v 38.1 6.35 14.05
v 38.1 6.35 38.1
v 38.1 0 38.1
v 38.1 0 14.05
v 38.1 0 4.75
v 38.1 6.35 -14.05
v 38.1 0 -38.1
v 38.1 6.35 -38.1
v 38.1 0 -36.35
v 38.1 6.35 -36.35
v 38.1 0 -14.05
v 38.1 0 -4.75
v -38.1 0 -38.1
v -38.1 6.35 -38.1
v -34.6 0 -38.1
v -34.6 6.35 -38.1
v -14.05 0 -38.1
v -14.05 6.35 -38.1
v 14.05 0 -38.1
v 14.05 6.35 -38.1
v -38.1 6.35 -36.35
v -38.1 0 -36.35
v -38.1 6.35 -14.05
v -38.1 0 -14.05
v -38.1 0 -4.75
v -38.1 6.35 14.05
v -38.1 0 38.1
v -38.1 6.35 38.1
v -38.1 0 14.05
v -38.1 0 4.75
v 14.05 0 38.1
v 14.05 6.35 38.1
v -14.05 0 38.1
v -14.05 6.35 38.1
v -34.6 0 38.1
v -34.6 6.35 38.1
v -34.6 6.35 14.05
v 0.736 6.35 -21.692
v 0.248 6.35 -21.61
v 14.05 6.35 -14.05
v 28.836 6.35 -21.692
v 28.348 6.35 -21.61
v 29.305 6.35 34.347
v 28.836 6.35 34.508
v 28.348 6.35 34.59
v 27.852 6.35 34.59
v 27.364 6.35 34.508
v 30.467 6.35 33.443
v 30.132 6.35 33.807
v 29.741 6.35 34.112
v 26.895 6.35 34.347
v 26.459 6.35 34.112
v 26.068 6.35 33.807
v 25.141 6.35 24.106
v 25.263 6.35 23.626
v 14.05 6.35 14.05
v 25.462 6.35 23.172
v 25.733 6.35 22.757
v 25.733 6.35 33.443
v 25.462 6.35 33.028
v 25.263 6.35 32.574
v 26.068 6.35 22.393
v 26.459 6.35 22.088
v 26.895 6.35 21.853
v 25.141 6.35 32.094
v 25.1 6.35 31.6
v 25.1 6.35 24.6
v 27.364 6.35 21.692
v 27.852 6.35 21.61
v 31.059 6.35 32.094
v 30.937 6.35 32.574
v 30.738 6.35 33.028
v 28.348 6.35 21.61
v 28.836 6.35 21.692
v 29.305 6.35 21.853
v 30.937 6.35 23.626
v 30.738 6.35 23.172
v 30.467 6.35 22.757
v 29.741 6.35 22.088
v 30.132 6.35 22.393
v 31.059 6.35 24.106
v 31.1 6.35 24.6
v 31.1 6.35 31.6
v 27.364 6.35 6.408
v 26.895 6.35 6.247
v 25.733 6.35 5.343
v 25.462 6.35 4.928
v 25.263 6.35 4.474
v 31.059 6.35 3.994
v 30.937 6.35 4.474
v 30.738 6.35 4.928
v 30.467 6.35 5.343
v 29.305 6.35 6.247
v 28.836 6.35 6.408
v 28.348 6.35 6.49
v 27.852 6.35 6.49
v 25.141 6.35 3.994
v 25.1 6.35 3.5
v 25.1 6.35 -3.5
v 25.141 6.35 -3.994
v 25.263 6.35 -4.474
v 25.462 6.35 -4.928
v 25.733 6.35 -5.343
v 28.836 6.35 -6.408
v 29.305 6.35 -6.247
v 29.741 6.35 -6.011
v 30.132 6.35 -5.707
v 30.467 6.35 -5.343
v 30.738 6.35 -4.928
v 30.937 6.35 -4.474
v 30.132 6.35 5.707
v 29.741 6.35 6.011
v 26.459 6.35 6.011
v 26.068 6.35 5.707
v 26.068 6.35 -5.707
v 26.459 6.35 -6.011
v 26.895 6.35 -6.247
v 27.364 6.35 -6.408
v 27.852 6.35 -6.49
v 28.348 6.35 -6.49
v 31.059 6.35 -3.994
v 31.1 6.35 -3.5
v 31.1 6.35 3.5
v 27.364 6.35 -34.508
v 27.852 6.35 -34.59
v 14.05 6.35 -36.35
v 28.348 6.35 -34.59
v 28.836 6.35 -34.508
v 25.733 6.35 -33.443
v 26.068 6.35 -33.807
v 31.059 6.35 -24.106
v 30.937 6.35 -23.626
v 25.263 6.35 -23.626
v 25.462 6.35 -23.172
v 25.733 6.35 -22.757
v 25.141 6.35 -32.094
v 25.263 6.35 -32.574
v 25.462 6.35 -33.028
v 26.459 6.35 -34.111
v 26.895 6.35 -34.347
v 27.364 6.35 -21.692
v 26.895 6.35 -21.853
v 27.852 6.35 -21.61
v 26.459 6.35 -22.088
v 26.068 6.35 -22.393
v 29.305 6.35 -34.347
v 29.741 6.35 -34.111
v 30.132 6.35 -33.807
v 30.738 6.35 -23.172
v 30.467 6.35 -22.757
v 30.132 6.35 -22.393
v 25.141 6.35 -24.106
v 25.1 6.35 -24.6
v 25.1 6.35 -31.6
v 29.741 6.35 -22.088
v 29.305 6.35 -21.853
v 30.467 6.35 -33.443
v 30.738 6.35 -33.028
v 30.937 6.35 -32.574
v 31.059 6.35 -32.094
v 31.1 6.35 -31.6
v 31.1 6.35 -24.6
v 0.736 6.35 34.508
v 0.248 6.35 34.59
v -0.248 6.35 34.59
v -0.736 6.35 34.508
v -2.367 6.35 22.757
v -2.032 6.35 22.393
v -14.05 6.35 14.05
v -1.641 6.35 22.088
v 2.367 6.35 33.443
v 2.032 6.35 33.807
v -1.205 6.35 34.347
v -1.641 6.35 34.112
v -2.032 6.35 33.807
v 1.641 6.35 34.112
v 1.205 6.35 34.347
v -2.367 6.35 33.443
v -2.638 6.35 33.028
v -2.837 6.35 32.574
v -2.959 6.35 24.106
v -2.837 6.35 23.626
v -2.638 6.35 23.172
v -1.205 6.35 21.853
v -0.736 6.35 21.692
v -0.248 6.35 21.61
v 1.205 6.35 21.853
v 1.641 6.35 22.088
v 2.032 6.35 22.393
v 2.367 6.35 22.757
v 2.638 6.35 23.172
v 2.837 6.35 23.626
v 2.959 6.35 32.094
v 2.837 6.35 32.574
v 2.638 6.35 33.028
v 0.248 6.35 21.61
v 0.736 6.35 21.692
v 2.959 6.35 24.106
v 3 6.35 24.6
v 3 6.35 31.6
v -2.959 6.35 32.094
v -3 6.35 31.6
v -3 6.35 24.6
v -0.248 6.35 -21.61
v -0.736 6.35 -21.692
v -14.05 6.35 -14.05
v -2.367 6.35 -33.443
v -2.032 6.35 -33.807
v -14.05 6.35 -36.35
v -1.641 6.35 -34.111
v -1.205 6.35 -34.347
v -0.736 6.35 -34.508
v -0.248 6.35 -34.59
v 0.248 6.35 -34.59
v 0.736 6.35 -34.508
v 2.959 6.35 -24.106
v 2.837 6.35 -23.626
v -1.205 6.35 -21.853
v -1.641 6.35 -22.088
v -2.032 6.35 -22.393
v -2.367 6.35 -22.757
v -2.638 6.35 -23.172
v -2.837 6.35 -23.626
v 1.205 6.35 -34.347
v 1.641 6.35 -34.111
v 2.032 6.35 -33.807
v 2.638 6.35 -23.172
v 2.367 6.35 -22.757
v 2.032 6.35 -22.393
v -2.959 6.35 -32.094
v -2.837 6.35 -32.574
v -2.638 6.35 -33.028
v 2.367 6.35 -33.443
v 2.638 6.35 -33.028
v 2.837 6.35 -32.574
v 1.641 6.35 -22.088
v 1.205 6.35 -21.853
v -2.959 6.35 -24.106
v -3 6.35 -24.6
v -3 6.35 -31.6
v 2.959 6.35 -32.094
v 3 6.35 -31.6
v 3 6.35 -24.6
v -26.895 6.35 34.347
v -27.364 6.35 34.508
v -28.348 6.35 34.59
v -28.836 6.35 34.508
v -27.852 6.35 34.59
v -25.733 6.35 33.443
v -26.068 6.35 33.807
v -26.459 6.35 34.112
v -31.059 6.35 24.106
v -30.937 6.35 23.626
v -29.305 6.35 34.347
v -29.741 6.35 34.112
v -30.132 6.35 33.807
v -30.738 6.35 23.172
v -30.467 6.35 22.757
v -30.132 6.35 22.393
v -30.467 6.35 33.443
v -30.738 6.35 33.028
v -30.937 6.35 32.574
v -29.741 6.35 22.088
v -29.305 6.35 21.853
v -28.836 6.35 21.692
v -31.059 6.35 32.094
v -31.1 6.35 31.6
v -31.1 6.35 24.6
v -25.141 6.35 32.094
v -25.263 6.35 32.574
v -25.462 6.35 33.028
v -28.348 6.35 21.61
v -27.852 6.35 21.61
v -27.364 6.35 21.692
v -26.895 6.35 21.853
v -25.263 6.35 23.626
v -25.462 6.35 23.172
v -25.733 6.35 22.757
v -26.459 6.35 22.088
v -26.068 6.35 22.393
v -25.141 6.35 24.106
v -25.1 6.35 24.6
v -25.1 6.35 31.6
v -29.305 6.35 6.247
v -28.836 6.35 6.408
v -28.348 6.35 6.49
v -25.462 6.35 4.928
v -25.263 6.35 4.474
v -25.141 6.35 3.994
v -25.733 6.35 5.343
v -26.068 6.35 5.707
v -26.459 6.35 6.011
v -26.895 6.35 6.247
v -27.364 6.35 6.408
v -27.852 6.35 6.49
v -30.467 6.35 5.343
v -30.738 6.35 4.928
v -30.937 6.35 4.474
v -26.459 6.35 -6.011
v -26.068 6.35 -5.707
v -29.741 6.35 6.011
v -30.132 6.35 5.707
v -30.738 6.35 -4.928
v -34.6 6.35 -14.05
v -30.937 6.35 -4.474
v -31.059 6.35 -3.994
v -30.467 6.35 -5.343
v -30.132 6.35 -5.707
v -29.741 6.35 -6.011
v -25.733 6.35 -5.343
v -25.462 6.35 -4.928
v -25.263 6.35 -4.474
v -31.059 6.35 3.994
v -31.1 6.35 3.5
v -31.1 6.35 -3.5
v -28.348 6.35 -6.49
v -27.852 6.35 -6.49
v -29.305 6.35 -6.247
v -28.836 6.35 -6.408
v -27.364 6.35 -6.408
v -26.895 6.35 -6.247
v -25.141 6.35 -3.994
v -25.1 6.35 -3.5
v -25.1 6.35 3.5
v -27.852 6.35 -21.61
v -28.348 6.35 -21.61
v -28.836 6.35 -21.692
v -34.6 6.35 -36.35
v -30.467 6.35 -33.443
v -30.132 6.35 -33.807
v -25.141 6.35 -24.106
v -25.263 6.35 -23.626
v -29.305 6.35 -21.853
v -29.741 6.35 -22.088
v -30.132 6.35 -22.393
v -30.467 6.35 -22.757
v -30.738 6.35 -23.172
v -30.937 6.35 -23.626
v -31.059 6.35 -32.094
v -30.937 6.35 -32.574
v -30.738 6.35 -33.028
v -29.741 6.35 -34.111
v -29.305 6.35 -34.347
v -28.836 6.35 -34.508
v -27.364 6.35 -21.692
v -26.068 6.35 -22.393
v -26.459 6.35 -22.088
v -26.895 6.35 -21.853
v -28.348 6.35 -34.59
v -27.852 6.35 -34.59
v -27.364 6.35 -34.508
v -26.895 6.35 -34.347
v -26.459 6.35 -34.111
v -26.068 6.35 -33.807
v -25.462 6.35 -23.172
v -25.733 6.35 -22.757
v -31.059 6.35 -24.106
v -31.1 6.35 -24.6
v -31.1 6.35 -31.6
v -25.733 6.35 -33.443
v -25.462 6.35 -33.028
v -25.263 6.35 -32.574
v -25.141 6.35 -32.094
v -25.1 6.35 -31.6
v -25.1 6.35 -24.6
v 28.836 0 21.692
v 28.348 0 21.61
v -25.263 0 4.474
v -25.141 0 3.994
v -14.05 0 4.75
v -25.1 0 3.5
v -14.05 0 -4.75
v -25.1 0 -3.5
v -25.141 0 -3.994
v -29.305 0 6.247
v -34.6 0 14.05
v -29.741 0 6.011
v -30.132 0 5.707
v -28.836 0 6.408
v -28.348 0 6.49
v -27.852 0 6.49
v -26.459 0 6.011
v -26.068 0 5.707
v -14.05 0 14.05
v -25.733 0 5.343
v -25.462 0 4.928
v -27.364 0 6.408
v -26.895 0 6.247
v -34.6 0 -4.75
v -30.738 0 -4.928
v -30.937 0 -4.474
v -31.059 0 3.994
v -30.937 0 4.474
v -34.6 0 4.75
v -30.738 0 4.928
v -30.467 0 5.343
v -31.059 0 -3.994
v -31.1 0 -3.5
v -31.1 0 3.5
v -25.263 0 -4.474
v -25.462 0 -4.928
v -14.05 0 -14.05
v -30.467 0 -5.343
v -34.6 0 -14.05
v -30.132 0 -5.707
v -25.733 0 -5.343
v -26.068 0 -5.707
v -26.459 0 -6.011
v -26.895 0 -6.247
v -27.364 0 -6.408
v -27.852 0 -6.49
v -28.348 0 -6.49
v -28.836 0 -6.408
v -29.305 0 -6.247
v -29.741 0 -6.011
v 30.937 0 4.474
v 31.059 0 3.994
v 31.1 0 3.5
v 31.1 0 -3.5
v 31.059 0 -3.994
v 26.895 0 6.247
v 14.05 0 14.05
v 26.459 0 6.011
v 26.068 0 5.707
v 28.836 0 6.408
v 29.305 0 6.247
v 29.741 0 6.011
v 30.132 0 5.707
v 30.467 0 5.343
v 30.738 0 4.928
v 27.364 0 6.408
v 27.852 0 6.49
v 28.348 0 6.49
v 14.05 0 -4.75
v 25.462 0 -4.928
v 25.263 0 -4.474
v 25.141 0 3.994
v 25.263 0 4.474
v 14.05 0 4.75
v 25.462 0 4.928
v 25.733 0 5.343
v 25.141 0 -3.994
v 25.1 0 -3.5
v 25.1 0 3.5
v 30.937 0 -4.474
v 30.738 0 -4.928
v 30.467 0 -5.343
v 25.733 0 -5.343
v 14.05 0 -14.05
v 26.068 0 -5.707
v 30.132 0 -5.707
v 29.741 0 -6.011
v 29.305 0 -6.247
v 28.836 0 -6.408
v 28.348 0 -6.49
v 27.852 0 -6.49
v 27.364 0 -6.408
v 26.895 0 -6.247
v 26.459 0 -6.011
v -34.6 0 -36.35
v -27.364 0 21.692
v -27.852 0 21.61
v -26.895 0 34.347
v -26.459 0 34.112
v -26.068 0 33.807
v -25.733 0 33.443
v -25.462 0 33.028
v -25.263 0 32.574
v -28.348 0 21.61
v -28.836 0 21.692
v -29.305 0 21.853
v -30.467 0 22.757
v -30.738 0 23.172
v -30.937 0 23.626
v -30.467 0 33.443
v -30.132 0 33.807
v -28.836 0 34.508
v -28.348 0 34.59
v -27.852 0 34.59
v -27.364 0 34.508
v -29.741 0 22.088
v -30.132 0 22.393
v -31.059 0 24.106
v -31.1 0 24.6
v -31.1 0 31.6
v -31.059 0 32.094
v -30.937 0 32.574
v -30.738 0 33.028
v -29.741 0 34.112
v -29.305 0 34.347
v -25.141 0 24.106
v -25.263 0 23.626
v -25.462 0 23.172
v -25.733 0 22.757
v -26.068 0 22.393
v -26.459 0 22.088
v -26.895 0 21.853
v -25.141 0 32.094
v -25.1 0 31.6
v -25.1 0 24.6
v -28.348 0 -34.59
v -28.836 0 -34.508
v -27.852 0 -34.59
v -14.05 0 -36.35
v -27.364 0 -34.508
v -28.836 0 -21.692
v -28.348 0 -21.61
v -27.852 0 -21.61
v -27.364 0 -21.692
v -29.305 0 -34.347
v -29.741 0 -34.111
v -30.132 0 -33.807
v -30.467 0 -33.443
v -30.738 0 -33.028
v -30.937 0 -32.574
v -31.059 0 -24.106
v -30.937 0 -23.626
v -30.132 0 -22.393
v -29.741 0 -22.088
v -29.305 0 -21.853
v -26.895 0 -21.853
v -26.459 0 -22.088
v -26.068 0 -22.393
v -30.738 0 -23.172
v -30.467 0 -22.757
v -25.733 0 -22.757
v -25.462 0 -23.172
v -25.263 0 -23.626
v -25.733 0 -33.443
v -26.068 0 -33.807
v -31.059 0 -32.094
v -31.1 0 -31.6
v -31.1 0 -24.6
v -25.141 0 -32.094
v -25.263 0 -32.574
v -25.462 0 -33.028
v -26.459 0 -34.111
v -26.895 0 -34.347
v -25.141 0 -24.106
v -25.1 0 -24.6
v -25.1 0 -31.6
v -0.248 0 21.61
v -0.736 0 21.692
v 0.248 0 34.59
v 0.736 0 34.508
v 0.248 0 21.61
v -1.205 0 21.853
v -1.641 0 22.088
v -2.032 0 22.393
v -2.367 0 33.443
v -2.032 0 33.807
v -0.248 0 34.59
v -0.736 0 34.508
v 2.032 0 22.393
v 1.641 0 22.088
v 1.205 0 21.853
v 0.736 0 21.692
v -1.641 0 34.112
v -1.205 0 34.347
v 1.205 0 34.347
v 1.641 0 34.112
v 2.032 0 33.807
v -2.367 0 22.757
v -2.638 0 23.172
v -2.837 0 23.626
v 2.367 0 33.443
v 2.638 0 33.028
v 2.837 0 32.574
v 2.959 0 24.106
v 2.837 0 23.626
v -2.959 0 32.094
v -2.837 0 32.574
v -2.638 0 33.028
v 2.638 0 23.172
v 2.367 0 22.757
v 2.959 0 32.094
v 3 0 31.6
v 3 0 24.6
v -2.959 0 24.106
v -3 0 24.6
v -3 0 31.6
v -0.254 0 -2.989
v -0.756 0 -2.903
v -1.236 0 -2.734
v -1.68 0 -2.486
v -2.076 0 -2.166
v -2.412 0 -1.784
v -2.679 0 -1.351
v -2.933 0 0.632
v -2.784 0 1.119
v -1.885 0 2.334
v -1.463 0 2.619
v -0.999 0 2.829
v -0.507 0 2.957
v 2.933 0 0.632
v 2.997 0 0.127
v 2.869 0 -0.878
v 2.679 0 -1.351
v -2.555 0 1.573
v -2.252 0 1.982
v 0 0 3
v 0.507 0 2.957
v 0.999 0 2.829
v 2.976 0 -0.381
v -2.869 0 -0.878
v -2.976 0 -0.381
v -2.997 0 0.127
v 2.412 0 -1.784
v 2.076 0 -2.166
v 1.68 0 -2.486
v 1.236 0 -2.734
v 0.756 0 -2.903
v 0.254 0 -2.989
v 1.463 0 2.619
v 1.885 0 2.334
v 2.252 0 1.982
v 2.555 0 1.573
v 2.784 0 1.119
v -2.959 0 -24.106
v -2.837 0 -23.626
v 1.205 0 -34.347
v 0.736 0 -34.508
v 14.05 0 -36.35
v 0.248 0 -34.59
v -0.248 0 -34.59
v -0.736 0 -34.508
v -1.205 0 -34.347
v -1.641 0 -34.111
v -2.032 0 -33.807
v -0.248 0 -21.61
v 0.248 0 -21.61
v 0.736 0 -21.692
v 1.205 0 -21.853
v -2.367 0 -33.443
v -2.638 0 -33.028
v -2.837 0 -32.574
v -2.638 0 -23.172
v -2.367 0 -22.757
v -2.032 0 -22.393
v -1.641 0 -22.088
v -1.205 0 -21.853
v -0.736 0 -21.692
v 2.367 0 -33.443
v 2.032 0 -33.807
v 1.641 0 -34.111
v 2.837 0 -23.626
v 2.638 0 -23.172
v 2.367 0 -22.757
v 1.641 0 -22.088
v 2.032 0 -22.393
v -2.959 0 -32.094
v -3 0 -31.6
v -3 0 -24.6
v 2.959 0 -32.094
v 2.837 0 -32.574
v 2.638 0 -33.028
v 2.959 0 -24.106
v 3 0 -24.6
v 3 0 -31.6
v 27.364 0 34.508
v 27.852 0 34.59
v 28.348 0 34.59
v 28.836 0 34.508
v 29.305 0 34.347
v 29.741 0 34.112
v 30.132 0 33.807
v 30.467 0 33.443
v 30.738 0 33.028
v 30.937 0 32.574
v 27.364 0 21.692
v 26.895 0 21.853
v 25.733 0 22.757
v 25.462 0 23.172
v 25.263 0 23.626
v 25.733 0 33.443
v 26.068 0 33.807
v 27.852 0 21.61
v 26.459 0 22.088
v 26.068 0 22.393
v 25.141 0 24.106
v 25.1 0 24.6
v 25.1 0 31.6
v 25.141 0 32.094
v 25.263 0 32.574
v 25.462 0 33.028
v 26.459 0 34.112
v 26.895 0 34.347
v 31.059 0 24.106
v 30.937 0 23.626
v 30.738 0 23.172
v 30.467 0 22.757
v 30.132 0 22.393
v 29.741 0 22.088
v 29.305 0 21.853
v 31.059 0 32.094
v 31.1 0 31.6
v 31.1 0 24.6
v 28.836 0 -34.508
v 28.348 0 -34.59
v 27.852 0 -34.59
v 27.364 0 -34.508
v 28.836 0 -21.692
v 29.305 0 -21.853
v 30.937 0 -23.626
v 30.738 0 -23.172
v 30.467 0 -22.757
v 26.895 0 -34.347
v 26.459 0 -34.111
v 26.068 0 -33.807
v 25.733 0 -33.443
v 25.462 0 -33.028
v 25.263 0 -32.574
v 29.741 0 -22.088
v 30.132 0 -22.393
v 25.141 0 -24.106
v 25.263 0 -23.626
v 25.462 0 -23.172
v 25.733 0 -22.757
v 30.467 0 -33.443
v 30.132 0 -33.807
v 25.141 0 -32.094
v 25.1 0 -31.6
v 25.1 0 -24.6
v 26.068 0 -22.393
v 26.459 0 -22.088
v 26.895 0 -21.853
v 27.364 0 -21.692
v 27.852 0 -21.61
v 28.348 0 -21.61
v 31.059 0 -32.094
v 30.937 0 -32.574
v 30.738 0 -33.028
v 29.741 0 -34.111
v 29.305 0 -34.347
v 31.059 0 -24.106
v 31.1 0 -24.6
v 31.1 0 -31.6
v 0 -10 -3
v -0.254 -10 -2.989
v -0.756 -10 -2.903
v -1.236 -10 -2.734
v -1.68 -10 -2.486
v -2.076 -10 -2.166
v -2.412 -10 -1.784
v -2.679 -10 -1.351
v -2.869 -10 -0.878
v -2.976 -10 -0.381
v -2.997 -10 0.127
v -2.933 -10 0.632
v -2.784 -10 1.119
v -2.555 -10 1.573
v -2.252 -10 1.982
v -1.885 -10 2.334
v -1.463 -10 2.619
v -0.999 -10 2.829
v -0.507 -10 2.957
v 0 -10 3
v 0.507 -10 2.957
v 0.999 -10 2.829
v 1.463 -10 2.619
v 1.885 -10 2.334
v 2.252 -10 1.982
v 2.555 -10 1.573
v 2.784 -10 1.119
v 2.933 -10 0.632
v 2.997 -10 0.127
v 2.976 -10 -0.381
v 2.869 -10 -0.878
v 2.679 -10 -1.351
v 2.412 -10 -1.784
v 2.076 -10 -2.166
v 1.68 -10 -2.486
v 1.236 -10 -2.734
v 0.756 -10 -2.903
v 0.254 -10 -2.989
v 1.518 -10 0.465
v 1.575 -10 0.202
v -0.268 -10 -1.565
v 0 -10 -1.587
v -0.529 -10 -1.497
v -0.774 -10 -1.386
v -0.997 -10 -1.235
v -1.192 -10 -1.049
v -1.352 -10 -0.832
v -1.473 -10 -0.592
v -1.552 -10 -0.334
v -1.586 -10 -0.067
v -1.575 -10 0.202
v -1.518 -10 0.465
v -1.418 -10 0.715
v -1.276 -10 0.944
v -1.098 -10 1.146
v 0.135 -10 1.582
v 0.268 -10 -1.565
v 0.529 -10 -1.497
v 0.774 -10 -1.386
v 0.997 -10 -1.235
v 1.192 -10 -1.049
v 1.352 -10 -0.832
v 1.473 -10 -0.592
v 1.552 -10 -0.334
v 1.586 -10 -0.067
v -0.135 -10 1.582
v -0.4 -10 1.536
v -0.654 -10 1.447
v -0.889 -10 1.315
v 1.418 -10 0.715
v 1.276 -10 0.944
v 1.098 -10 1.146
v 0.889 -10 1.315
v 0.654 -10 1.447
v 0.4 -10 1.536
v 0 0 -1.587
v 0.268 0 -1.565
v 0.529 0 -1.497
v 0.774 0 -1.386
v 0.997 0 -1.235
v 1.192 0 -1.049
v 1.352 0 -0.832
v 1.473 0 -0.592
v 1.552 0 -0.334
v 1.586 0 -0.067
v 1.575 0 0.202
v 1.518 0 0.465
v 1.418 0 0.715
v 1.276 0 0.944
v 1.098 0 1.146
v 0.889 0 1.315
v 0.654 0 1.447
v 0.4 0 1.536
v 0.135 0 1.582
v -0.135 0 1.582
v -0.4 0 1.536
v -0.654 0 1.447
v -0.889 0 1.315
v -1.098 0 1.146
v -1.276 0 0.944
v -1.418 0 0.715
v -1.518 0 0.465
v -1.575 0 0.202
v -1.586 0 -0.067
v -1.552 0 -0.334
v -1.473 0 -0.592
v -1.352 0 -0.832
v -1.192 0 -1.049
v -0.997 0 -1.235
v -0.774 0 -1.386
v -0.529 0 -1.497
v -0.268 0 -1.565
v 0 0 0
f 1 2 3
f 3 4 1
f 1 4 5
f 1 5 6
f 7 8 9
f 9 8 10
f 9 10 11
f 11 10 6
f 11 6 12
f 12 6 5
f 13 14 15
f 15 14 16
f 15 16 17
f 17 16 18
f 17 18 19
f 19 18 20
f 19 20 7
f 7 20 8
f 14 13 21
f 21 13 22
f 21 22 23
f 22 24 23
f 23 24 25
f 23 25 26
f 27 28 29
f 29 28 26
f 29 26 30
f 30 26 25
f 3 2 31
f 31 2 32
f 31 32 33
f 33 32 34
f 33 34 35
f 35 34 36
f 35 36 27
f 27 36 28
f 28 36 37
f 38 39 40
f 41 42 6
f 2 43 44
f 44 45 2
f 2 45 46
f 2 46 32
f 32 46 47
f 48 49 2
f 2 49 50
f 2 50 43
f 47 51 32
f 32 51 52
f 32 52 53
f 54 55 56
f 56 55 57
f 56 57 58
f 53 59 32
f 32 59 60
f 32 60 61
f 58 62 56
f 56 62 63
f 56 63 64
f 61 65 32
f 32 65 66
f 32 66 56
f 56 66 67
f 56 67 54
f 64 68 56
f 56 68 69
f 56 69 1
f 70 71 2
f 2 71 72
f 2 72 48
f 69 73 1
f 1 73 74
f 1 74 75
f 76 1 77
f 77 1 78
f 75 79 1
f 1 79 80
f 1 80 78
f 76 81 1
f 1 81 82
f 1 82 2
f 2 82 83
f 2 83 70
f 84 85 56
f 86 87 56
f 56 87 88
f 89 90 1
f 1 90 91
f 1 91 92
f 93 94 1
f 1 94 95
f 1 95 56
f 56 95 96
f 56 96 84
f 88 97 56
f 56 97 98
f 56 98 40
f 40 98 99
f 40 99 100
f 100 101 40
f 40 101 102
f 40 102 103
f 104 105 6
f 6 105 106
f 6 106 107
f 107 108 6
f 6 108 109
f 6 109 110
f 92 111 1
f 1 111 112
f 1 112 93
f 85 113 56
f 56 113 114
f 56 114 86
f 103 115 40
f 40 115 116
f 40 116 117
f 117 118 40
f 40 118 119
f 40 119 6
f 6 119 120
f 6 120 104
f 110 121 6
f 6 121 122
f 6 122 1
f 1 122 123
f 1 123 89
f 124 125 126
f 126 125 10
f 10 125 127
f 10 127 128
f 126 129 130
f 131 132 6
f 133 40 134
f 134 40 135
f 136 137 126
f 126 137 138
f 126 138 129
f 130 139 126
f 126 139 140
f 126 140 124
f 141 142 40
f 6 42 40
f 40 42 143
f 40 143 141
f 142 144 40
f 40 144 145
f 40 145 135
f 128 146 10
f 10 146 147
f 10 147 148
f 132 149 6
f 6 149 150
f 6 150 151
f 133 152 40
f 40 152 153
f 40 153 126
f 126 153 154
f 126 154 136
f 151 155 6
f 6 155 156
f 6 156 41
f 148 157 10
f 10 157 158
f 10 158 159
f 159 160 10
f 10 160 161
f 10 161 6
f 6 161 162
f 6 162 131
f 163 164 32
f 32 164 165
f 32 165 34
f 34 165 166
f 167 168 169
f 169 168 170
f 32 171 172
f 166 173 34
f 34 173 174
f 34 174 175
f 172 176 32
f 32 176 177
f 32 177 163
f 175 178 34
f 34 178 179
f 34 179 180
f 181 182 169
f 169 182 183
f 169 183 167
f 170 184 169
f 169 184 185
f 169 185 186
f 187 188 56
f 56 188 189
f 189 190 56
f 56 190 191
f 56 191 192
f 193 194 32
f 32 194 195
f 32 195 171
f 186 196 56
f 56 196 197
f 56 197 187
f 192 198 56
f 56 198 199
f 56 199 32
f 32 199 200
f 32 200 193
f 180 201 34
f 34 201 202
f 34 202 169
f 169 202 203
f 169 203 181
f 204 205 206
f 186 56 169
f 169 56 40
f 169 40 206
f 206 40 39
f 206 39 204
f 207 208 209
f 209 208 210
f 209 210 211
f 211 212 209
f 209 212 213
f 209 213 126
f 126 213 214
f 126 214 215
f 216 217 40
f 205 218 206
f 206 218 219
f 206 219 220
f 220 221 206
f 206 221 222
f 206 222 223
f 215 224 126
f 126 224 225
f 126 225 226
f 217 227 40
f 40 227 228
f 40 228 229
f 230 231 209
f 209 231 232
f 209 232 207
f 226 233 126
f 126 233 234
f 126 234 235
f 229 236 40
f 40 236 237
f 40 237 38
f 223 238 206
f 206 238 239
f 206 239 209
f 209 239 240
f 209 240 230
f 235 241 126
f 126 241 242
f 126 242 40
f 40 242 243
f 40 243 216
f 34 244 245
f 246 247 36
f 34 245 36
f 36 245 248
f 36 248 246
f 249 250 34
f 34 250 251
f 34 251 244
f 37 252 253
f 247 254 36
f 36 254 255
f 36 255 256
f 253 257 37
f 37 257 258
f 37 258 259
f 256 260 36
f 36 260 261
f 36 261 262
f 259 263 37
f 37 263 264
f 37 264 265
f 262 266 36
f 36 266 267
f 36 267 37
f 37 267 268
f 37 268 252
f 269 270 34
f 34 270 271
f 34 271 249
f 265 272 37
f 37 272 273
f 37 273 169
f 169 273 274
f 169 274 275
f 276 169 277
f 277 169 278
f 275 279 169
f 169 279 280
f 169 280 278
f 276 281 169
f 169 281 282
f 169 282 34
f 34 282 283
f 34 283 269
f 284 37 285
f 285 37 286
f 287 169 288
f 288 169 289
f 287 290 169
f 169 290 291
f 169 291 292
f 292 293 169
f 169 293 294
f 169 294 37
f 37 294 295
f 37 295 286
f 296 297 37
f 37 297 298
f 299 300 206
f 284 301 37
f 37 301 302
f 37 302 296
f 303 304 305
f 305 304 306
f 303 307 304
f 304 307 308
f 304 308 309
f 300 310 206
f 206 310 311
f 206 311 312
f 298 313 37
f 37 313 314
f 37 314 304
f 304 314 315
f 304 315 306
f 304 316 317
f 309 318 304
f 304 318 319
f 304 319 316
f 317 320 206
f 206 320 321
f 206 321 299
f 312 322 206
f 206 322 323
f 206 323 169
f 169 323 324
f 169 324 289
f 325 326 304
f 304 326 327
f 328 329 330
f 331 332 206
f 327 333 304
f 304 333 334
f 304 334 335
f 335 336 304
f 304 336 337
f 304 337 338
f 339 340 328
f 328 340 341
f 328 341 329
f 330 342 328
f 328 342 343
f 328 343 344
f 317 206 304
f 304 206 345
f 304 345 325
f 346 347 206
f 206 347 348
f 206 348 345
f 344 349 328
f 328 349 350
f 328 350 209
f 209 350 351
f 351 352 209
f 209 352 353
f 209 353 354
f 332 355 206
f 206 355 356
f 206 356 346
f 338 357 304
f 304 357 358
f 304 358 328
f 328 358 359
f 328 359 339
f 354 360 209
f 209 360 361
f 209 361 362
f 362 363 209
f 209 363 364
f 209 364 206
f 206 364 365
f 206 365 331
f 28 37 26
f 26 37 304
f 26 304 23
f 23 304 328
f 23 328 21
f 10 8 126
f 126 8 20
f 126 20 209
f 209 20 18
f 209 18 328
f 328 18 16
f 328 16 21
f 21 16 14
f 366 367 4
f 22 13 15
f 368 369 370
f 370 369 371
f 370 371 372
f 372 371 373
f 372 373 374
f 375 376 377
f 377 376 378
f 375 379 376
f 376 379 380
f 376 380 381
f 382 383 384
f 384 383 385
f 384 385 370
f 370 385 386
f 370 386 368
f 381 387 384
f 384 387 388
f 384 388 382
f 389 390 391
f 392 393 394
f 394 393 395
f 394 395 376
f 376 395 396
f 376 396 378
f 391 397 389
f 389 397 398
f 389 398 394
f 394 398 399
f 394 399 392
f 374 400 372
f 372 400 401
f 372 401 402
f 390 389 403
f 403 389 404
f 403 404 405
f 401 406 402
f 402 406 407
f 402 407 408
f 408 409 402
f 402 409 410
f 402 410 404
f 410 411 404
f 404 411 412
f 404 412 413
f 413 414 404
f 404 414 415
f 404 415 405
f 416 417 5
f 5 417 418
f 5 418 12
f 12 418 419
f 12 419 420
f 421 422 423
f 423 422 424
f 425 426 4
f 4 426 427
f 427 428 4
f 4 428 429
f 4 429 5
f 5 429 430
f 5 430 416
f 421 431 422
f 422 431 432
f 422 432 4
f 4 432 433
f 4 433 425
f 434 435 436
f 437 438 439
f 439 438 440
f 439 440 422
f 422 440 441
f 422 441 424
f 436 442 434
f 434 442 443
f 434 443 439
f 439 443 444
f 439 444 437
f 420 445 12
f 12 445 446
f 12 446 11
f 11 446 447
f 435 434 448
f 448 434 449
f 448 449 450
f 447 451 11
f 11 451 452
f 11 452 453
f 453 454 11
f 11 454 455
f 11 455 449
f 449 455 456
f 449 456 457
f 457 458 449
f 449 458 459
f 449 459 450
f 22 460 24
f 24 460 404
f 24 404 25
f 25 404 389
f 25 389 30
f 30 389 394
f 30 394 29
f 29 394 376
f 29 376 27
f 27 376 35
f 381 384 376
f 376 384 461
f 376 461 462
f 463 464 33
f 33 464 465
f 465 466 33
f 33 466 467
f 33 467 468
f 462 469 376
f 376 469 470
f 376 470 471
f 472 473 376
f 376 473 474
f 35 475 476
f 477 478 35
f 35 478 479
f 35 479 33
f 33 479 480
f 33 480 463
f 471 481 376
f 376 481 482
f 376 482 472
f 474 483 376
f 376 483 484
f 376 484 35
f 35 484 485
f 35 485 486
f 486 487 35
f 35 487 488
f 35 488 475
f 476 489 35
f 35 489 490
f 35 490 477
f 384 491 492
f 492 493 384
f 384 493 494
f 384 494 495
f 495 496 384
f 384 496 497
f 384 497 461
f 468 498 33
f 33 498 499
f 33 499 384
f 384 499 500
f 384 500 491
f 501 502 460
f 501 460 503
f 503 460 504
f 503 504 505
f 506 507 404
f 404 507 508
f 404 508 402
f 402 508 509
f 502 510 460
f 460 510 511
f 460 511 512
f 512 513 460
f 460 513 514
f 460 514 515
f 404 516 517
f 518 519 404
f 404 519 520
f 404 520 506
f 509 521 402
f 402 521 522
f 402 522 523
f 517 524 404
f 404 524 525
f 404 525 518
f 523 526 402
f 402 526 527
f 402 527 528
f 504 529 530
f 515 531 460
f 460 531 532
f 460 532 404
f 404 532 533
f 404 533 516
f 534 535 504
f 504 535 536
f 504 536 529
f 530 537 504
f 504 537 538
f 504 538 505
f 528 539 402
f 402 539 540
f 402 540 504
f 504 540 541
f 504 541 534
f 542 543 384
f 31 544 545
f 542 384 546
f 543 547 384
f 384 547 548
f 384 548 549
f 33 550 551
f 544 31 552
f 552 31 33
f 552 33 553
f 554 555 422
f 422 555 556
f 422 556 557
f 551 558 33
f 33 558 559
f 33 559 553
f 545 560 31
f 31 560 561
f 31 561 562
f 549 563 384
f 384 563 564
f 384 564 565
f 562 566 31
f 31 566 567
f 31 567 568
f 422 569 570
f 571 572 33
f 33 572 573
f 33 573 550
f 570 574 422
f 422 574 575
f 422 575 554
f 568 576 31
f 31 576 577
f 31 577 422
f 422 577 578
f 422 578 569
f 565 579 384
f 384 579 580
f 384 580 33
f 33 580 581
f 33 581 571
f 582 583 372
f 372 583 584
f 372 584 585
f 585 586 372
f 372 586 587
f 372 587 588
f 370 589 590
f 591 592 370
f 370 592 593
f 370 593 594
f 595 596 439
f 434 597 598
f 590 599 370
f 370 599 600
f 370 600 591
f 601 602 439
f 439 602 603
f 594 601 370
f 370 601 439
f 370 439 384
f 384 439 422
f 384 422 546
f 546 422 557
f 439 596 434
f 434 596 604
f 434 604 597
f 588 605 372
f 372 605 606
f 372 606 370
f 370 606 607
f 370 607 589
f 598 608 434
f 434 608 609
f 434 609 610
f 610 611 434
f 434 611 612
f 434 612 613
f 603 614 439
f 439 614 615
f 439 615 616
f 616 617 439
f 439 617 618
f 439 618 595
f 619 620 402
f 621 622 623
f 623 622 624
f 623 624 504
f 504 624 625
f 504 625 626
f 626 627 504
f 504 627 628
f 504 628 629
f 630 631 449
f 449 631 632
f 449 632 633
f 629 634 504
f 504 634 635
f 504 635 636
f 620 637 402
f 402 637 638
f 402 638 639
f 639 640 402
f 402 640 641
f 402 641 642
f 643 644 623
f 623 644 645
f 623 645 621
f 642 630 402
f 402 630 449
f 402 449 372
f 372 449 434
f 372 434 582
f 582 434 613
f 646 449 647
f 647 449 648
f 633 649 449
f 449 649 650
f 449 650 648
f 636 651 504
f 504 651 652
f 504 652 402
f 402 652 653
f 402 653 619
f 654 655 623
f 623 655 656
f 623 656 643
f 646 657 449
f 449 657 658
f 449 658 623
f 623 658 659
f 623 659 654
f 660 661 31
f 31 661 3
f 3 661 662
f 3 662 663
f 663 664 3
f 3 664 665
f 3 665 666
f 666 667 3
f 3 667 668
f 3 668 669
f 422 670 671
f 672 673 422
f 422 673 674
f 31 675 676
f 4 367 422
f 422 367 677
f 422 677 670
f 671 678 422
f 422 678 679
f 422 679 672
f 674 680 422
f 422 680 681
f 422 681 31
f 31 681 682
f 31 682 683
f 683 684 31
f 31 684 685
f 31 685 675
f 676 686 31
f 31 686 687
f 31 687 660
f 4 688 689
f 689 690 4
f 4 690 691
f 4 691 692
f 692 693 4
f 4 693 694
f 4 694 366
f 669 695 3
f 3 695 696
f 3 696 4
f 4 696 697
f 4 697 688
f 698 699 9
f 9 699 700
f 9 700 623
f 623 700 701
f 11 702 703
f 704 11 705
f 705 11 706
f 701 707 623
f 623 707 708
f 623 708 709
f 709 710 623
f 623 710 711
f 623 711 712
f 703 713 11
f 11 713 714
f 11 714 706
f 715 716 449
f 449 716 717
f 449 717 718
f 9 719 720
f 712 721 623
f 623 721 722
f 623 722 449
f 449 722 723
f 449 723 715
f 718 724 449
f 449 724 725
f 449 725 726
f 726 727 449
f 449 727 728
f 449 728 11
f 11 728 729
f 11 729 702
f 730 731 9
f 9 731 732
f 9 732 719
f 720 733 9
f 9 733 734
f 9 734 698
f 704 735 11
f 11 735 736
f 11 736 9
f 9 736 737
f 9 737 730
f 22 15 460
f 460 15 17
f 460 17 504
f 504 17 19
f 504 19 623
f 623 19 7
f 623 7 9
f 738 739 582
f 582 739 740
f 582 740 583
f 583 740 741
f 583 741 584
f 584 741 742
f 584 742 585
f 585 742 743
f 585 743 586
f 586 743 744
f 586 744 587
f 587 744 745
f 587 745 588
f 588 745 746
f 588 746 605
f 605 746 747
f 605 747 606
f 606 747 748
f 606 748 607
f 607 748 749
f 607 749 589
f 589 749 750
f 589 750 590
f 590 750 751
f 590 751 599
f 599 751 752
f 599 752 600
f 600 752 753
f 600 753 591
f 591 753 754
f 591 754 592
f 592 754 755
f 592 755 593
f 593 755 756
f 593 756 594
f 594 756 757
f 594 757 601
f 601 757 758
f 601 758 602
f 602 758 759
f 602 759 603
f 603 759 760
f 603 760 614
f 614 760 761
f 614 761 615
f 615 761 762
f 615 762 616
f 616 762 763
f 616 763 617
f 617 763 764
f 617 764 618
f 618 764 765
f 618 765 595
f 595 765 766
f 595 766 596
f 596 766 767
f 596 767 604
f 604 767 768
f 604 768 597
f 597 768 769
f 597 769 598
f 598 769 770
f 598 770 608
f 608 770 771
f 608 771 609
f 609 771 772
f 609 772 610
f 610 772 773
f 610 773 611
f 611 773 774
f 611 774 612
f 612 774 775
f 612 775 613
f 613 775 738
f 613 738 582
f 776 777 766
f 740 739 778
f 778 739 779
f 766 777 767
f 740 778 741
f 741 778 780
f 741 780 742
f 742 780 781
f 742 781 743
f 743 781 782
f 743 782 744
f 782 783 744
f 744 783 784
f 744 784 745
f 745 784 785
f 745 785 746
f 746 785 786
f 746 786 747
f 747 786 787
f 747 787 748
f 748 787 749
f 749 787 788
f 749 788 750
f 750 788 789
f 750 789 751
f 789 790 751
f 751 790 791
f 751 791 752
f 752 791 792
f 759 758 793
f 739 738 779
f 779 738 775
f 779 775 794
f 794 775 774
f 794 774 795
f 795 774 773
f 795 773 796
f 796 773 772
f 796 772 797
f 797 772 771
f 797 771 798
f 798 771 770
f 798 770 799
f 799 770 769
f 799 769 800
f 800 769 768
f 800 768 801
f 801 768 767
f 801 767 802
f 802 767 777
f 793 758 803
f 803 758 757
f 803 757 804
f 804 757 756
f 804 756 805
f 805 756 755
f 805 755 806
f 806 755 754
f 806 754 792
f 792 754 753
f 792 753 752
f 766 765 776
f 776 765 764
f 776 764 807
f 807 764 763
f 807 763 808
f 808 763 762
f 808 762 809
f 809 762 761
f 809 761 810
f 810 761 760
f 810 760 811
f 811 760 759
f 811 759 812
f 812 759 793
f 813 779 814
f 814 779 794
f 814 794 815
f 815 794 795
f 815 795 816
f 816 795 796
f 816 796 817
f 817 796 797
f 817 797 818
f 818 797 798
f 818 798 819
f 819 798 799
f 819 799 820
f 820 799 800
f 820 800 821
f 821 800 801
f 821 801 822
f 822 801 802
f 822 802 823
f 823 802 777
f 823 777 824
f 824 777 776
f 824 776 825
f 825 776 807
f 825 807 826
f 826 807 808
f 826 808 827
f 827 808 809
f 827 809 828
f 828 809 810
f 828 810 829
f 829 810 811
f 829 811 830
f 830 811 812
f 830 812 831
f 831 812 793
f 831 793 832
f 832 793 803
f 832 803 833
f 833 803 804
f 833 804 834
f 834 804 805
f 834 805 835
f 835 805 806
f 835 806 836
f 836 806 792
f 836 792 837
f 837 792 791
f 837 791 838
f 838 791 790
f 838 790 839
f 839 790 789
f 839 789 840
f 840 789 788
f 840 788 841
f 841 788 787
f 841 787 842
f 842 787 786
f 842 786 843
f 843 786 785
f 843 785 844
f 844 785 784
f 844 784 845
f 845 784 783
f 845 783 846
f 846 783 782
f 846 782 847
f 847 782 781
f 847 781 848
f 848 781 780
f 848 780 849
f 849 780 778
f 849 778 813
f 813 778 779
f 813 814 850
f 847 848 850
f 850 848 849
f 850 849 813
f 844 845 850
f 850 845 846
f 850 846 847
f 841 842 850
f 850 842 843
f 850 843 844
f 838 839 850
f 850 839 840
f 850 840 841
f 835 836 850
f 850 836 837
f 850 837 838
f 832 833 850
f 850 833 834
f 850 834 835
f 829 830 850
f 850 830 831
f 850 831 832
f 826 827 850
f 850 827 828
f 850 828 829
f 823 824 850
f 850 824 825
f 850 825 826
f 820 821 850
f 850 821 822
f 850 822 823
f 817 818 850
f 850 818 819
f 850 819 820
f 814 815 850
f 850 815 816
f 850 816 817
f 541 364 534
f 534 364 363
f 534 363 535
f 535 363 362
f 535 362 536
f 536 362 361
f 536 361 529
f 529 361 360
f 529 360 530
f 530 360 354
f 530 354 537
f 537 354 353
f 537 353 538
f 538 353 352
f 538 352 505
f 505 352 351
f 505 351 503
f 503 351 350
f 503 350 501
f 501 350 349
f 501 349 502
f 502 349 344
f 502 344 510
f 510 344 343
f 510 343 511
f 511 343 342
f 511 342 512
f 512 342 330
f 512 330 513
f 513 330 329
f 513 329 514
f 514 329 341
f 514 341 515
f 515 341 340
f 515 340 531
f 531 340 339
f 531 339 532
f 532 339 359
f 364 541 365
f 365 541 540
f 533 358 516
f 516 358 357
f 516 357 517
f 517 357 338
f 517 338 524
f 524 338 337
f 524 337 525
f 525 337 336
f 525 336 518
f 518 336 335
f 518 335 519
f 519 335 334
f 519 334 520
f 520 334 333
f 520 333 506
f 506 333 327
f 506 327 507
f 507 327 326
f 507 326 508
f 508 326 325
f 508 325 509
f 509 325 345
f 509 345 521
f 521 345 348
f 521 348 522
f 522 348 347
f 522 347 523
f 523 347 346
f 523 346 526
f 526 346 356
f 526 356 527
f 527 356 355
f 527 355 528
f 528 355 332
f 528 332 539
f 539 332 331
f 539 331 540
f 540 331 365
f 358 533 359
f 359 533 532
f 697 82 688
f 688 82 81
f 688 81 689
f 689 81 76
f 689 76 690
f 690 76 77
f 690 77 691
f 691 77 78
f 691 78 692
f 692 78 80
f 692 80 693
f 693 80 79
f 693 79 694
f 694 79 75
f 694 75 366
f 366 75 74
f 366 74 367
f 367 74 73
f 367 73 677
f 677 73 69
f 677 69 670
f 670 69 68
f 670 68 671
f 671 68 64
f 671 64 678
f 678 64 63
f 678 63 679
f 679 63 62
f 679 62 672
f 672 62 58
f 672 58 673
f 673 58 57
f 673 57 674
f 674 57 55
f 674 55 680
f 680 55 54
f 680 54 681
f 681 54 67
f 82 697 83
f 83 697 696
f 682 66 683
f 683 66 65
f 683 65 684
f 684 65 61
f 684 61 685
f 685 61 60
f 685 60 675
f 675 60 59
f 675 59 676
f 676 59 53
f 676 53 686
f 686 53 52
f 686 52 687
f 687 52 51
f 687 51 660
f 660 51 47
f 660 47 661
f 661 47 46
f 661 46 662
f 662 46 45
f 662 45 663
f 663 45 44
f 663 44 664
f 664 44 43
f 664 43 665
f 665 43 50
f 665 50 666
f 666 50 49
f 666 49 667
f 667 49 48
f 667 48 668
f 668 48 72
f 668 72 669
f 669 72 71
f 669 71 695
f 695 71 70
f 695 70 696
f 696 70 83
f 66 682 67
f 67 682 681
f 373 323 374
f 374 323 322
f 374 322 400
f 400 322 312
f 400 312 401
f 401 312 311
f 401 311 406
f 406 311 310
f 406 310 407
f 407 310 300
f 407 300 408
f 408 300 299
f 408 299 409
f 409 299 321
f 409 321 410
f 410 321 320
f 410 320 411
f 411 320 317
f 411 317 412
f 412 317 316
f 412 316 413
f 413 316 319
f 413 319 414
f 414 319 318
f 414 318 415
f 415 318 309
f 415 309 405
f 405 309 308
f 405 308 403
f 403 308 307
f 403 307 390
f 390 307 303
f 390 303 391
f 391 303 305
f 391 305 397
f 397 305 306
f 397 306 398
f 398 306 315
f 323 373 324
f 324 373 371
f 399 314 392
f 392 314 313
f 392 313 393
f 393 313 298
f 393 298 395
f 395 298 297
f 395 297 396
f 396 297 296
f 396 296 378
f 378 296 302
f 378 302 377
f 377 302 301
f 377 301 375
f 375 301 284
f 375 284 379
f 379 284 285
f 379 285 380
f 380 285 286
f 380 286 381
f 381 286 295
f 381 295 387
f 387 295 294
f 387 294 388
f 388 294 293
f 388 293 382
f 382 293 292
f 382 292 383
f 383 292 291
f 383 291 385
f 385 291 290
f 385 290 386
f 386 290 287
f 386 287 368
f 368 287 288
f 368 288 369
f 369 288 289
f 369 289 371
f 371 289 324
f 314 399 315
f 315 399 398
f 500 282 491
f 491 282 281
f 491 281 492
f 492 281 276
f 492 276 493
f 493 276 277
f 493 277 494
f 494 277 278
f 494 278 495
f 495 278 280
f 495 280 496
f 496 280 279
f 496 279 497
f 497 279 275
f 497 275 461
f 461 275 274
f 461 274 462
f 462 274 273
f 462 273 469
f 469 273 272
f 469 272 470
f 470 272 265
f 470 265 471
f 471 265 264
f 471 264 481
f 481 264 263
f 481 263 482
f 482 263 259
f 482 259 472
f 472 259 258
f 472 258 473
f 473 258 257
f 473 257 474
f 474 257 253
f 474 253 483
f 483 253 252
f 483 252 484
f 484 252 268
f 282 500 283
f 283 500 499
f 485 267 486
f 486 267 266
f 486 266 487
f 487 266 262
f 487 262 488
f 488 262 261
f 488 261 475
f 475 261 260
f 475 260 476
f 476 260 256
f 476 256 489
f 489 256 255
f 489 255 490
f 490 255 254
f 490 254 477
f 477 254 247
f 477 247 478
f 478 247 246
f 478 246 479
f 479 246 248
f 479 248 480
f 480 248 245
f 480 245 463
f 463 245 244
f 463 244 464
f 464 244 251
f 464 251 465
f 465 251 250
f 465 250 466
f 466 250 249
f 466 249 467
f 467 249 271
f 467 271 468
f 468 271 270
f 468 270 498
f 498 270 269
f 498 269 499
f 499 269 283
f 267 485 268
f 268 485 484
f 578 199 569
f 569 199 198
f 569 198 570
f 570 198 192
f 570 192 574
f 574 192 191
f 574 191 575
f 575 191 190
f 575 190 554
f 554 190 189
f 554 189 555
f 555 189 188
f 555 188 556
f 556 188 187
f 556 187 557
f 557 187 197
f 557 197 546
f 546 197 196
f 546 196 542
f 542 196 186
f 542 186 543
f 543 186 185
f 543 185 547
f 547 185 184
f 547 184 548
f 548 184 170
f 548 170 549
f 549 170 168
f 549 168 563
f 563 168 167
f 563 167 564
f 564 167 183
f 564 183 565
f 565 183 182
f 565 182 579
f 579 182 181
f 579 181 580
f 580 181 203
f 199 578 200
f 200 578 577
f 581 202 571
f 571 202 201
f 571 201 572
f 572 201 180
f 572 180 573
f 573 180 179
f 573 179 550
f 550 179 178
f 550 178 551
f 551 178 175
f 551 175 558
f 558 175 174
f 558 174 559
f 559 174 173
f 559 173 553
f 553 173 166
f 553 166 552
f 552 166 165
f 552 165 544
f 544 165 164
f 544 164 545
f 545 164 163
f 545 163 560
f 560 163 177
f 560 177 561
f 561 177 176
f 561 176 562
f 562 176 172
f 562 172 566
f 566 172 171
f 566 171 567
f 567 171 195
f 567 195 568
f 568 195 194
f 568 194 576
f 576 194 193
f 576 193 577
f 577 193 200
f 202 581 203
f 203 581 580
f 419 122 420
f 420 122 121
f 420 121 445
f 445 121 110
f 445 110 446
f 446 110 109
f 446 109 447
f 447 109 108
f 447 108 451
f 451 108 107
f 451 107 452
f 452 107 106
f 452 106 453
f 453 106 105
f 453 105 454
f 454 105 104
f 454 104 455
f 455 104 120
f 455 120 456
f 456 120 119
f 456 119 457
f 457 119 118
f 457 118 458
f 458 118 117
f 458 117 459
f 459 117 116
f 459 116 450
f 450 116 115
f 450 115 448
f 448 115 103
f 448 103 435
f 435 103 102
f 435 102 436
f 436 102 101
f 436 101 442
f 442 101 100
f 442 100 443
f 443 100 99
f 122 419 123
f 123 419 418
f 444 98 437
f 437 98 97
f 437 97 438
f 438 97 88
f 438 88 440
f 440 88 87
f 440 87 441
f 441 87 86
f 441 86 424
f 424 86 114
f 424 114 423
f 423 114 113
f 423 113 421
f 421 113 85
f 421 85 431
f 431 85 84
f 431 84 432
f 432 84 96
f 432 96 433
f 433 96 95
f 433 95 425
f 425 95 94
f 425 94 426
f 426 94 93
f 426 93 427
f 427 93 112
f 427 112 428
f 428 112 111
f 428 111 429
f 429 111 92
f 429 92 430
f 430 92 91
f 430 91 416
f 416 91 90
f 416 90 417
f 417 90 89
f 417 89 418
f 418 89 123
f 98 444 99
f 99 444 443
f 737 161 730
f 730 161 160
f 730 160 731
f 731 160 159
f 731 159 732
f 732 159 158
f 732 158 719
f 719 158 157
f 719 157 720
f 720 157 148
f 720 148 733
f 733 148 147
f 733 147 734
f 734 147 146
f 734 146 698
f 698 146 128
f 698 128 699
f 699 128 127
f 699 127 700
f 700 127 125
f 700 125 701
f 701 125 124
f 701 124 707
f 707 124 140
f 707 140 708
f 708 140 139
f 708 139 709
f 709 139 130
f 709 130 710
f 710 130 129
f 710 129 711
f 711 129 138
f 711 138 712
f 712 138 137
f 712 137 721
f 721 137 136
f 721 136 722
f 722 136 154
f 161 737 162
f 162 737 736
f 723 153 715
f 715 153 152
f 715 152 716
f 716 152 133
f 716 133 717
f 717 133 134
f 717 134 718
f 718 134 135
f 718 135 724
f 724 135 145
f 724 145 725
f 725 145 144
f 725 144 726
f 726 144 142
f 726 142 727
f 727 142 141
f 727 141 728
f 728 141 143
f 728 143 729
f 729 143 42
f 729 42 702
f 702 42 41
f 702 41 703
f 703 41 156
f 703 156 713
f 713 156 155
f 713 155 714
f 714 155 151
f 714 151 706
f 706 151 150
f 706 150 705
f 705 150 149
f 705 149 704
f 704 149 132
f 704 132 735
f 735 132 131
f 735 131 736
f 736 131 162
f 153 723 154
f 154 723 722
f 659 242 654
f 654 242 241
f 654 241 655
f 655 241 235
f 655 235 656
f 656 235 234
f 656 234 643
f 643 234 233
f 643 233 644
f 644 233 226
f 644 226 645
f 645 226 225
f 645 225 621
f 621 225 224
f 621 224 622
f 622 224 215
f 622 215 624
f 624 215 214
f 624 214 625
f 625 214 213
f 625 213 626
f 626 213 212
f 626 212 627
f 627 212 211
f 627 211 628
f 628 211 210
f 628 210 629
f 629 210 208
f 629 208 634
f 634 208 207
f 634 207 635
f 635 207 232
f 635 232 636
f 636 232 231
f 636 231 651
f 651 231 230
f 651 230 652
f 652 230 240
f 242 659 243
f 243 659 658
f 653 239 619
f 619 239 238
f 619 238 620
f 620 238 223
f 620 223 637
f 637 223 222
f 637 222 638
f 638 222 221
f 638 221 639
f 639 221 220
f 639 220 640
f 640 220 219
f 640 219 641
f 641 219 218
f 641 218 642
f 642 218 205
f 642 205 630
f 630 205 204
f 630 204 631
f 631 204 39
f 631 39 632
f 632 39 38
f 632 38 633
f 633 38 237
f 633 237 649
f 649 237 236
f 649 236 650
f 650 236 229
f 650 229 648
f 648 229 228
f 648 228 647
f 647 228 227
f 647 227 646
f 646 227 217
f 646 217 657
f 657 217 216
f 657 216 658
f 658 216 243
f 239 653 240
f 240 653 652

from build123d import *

# Parameters (mm, degrees)
SKETCH1_W           = 76.2
SKETCH1_H           = 76.2
BOSS_EXTRUDE1_DEPTH = 6.35
SKETCH2_R           = 3
BOSS_EXTRUDE2_DEPTH = 10
SKETCH3_R           = 1.5875
CUT_EXTRUDE1_DEPTH  = 10
CUT_EXTRUDE2_DEPTH  = 17.35


with BuildPart() as part:
    # Sketch1 → Boss-Extrude1 (new body)
    with BuildSketch(Plane(origin=(0, 0, 0), x_dir=(1, 0, 0), z_dir=(0, 1, 0))):
        Rectangle(SKETCH1_W, SKETCH1_H)
    extrude(amount=BOSS_EXTRUDE1_DEPTH)

    # Sketch2 → Boss-Extrude2 (add)
    with BuildSketch(Plane.XZ):
        Circle(SKETCH2_R)
    extrude(amount=BOSS_EXTRUDE2_DEPTH)

    # Sketch3 → Cut-Extrude1 (cut)
    with BuildSketch(Plane.XZ.offset(10)):
        Circle(SKETCH3_R)
    extrude(amount=-CUT_EXTRUDE1_DEPTH, mode=Mode.SUBTRACT)

    # Sketch5 → Cut-Extrude2 (cut, through all)
    with BuildSketch(Plane(origin=(0, 6.35, 0), x_dir=(1, 0, 0), z_dir=(0, 1, 0))):
        with BuildLine():
            Line((-25.1, 31.6), (-25.1, 24.6))
            ThreePointArc((-25.1, 24.6), (-28.1, 21.6), (-31.1, 24.6))
            Line((-31.1, 24.6), (-31.1, 31.6))
            ThreePointArc((-31.1, 31.6), (-28.1, 34.6), (-25.1, 31.6))
        make_face()
        with BuildLine():
            Line((-3, 31.6), (-3, 24.6))
            ThreePointArc((-3, 24.6), (0, 21.6), (3, 24.6))
            Line((3, 24.6), (3, 31.6))
            ThreePointArc((3, 31.6), (0, 34.6), (-3, 31.6))
        make_face()
        with BuildLine():
            Line((25.1, 31.6), (25.1, 24.6))
            ThreePointArc((25.1, 24.6), (28.1, 21.6), (31.1, 24.6))
            Line((31.1, 24.6), (31.1, 31.6))
            ThreePointArc((31.1, 31.6), (28.1, 34.6), (25.1, 31.6))
        make_face()
        with BuildLine():
            Line((25.1, 3.5), (25.1, -3.5))
            ThreePointArc((25.1, -3.5), (28.1, -6.5), (31.1, -3.5))
            Line((31.1, -3.5), (31.1, 3.5))
            ThreePointArc((31.1, 3.5), (28.1, 6.5), (25.1, 3.5))
        make_face()
        with BuildLine():
            Line((-3, -24.6), (-3, -31.6))
            ThreePointArc((-3, -31.6), (0, -34.6), (3, -31.6))
            Line((3, -31.6), (3, -24.6))
            ThreePointArc((3, -24.6), (0, -21.6), (-3, -24.6))
        make_face()
        with BuildLine():
            Line((25.1, -24.6), (25.1, -31.6))
            ThreePointArc((25.1, -31.6), (28.1, -34.6), (31.1, -31.6))
            Line((31.1, -31.6), (31.1, -24.6))
            ThreePointArc((31.1, -24.6), (28.1, -21.6), (25.1, -24.6))
        make_face()
        with BuildLine():
            Line((-31.1, 3.5), (-31.1, -3.5))
            ThreePointArc((-31.1, -3.5), (-28.1, -6.5), (-25.1, -3.5))
            Line((-25.1, -3.5), (-25.1, 3.5))
            ThreePointArc((-25.1, 3.5), (-28.1, 6.5), (-31.1, 3.5))
        make_face()
        with BuildLine():
            Line((-31.1, -24.6), (-31.1, -31.6))
            ThreePointArc((-31.1, -31.6), (-28.1, -34.6), (-25.1, -31.6))
            Line((-25.1, -31.6), (-25.1, -24.6))
            ThreePointArc((-25.1, -24.6), (-28.1, -21.6), (-31.1, -24.6))
        make_face()
    extrude(amount=-CUT_EXTRUDE2_DEPTH, mode=Mode.SUBTRACT)


solid = part.part
